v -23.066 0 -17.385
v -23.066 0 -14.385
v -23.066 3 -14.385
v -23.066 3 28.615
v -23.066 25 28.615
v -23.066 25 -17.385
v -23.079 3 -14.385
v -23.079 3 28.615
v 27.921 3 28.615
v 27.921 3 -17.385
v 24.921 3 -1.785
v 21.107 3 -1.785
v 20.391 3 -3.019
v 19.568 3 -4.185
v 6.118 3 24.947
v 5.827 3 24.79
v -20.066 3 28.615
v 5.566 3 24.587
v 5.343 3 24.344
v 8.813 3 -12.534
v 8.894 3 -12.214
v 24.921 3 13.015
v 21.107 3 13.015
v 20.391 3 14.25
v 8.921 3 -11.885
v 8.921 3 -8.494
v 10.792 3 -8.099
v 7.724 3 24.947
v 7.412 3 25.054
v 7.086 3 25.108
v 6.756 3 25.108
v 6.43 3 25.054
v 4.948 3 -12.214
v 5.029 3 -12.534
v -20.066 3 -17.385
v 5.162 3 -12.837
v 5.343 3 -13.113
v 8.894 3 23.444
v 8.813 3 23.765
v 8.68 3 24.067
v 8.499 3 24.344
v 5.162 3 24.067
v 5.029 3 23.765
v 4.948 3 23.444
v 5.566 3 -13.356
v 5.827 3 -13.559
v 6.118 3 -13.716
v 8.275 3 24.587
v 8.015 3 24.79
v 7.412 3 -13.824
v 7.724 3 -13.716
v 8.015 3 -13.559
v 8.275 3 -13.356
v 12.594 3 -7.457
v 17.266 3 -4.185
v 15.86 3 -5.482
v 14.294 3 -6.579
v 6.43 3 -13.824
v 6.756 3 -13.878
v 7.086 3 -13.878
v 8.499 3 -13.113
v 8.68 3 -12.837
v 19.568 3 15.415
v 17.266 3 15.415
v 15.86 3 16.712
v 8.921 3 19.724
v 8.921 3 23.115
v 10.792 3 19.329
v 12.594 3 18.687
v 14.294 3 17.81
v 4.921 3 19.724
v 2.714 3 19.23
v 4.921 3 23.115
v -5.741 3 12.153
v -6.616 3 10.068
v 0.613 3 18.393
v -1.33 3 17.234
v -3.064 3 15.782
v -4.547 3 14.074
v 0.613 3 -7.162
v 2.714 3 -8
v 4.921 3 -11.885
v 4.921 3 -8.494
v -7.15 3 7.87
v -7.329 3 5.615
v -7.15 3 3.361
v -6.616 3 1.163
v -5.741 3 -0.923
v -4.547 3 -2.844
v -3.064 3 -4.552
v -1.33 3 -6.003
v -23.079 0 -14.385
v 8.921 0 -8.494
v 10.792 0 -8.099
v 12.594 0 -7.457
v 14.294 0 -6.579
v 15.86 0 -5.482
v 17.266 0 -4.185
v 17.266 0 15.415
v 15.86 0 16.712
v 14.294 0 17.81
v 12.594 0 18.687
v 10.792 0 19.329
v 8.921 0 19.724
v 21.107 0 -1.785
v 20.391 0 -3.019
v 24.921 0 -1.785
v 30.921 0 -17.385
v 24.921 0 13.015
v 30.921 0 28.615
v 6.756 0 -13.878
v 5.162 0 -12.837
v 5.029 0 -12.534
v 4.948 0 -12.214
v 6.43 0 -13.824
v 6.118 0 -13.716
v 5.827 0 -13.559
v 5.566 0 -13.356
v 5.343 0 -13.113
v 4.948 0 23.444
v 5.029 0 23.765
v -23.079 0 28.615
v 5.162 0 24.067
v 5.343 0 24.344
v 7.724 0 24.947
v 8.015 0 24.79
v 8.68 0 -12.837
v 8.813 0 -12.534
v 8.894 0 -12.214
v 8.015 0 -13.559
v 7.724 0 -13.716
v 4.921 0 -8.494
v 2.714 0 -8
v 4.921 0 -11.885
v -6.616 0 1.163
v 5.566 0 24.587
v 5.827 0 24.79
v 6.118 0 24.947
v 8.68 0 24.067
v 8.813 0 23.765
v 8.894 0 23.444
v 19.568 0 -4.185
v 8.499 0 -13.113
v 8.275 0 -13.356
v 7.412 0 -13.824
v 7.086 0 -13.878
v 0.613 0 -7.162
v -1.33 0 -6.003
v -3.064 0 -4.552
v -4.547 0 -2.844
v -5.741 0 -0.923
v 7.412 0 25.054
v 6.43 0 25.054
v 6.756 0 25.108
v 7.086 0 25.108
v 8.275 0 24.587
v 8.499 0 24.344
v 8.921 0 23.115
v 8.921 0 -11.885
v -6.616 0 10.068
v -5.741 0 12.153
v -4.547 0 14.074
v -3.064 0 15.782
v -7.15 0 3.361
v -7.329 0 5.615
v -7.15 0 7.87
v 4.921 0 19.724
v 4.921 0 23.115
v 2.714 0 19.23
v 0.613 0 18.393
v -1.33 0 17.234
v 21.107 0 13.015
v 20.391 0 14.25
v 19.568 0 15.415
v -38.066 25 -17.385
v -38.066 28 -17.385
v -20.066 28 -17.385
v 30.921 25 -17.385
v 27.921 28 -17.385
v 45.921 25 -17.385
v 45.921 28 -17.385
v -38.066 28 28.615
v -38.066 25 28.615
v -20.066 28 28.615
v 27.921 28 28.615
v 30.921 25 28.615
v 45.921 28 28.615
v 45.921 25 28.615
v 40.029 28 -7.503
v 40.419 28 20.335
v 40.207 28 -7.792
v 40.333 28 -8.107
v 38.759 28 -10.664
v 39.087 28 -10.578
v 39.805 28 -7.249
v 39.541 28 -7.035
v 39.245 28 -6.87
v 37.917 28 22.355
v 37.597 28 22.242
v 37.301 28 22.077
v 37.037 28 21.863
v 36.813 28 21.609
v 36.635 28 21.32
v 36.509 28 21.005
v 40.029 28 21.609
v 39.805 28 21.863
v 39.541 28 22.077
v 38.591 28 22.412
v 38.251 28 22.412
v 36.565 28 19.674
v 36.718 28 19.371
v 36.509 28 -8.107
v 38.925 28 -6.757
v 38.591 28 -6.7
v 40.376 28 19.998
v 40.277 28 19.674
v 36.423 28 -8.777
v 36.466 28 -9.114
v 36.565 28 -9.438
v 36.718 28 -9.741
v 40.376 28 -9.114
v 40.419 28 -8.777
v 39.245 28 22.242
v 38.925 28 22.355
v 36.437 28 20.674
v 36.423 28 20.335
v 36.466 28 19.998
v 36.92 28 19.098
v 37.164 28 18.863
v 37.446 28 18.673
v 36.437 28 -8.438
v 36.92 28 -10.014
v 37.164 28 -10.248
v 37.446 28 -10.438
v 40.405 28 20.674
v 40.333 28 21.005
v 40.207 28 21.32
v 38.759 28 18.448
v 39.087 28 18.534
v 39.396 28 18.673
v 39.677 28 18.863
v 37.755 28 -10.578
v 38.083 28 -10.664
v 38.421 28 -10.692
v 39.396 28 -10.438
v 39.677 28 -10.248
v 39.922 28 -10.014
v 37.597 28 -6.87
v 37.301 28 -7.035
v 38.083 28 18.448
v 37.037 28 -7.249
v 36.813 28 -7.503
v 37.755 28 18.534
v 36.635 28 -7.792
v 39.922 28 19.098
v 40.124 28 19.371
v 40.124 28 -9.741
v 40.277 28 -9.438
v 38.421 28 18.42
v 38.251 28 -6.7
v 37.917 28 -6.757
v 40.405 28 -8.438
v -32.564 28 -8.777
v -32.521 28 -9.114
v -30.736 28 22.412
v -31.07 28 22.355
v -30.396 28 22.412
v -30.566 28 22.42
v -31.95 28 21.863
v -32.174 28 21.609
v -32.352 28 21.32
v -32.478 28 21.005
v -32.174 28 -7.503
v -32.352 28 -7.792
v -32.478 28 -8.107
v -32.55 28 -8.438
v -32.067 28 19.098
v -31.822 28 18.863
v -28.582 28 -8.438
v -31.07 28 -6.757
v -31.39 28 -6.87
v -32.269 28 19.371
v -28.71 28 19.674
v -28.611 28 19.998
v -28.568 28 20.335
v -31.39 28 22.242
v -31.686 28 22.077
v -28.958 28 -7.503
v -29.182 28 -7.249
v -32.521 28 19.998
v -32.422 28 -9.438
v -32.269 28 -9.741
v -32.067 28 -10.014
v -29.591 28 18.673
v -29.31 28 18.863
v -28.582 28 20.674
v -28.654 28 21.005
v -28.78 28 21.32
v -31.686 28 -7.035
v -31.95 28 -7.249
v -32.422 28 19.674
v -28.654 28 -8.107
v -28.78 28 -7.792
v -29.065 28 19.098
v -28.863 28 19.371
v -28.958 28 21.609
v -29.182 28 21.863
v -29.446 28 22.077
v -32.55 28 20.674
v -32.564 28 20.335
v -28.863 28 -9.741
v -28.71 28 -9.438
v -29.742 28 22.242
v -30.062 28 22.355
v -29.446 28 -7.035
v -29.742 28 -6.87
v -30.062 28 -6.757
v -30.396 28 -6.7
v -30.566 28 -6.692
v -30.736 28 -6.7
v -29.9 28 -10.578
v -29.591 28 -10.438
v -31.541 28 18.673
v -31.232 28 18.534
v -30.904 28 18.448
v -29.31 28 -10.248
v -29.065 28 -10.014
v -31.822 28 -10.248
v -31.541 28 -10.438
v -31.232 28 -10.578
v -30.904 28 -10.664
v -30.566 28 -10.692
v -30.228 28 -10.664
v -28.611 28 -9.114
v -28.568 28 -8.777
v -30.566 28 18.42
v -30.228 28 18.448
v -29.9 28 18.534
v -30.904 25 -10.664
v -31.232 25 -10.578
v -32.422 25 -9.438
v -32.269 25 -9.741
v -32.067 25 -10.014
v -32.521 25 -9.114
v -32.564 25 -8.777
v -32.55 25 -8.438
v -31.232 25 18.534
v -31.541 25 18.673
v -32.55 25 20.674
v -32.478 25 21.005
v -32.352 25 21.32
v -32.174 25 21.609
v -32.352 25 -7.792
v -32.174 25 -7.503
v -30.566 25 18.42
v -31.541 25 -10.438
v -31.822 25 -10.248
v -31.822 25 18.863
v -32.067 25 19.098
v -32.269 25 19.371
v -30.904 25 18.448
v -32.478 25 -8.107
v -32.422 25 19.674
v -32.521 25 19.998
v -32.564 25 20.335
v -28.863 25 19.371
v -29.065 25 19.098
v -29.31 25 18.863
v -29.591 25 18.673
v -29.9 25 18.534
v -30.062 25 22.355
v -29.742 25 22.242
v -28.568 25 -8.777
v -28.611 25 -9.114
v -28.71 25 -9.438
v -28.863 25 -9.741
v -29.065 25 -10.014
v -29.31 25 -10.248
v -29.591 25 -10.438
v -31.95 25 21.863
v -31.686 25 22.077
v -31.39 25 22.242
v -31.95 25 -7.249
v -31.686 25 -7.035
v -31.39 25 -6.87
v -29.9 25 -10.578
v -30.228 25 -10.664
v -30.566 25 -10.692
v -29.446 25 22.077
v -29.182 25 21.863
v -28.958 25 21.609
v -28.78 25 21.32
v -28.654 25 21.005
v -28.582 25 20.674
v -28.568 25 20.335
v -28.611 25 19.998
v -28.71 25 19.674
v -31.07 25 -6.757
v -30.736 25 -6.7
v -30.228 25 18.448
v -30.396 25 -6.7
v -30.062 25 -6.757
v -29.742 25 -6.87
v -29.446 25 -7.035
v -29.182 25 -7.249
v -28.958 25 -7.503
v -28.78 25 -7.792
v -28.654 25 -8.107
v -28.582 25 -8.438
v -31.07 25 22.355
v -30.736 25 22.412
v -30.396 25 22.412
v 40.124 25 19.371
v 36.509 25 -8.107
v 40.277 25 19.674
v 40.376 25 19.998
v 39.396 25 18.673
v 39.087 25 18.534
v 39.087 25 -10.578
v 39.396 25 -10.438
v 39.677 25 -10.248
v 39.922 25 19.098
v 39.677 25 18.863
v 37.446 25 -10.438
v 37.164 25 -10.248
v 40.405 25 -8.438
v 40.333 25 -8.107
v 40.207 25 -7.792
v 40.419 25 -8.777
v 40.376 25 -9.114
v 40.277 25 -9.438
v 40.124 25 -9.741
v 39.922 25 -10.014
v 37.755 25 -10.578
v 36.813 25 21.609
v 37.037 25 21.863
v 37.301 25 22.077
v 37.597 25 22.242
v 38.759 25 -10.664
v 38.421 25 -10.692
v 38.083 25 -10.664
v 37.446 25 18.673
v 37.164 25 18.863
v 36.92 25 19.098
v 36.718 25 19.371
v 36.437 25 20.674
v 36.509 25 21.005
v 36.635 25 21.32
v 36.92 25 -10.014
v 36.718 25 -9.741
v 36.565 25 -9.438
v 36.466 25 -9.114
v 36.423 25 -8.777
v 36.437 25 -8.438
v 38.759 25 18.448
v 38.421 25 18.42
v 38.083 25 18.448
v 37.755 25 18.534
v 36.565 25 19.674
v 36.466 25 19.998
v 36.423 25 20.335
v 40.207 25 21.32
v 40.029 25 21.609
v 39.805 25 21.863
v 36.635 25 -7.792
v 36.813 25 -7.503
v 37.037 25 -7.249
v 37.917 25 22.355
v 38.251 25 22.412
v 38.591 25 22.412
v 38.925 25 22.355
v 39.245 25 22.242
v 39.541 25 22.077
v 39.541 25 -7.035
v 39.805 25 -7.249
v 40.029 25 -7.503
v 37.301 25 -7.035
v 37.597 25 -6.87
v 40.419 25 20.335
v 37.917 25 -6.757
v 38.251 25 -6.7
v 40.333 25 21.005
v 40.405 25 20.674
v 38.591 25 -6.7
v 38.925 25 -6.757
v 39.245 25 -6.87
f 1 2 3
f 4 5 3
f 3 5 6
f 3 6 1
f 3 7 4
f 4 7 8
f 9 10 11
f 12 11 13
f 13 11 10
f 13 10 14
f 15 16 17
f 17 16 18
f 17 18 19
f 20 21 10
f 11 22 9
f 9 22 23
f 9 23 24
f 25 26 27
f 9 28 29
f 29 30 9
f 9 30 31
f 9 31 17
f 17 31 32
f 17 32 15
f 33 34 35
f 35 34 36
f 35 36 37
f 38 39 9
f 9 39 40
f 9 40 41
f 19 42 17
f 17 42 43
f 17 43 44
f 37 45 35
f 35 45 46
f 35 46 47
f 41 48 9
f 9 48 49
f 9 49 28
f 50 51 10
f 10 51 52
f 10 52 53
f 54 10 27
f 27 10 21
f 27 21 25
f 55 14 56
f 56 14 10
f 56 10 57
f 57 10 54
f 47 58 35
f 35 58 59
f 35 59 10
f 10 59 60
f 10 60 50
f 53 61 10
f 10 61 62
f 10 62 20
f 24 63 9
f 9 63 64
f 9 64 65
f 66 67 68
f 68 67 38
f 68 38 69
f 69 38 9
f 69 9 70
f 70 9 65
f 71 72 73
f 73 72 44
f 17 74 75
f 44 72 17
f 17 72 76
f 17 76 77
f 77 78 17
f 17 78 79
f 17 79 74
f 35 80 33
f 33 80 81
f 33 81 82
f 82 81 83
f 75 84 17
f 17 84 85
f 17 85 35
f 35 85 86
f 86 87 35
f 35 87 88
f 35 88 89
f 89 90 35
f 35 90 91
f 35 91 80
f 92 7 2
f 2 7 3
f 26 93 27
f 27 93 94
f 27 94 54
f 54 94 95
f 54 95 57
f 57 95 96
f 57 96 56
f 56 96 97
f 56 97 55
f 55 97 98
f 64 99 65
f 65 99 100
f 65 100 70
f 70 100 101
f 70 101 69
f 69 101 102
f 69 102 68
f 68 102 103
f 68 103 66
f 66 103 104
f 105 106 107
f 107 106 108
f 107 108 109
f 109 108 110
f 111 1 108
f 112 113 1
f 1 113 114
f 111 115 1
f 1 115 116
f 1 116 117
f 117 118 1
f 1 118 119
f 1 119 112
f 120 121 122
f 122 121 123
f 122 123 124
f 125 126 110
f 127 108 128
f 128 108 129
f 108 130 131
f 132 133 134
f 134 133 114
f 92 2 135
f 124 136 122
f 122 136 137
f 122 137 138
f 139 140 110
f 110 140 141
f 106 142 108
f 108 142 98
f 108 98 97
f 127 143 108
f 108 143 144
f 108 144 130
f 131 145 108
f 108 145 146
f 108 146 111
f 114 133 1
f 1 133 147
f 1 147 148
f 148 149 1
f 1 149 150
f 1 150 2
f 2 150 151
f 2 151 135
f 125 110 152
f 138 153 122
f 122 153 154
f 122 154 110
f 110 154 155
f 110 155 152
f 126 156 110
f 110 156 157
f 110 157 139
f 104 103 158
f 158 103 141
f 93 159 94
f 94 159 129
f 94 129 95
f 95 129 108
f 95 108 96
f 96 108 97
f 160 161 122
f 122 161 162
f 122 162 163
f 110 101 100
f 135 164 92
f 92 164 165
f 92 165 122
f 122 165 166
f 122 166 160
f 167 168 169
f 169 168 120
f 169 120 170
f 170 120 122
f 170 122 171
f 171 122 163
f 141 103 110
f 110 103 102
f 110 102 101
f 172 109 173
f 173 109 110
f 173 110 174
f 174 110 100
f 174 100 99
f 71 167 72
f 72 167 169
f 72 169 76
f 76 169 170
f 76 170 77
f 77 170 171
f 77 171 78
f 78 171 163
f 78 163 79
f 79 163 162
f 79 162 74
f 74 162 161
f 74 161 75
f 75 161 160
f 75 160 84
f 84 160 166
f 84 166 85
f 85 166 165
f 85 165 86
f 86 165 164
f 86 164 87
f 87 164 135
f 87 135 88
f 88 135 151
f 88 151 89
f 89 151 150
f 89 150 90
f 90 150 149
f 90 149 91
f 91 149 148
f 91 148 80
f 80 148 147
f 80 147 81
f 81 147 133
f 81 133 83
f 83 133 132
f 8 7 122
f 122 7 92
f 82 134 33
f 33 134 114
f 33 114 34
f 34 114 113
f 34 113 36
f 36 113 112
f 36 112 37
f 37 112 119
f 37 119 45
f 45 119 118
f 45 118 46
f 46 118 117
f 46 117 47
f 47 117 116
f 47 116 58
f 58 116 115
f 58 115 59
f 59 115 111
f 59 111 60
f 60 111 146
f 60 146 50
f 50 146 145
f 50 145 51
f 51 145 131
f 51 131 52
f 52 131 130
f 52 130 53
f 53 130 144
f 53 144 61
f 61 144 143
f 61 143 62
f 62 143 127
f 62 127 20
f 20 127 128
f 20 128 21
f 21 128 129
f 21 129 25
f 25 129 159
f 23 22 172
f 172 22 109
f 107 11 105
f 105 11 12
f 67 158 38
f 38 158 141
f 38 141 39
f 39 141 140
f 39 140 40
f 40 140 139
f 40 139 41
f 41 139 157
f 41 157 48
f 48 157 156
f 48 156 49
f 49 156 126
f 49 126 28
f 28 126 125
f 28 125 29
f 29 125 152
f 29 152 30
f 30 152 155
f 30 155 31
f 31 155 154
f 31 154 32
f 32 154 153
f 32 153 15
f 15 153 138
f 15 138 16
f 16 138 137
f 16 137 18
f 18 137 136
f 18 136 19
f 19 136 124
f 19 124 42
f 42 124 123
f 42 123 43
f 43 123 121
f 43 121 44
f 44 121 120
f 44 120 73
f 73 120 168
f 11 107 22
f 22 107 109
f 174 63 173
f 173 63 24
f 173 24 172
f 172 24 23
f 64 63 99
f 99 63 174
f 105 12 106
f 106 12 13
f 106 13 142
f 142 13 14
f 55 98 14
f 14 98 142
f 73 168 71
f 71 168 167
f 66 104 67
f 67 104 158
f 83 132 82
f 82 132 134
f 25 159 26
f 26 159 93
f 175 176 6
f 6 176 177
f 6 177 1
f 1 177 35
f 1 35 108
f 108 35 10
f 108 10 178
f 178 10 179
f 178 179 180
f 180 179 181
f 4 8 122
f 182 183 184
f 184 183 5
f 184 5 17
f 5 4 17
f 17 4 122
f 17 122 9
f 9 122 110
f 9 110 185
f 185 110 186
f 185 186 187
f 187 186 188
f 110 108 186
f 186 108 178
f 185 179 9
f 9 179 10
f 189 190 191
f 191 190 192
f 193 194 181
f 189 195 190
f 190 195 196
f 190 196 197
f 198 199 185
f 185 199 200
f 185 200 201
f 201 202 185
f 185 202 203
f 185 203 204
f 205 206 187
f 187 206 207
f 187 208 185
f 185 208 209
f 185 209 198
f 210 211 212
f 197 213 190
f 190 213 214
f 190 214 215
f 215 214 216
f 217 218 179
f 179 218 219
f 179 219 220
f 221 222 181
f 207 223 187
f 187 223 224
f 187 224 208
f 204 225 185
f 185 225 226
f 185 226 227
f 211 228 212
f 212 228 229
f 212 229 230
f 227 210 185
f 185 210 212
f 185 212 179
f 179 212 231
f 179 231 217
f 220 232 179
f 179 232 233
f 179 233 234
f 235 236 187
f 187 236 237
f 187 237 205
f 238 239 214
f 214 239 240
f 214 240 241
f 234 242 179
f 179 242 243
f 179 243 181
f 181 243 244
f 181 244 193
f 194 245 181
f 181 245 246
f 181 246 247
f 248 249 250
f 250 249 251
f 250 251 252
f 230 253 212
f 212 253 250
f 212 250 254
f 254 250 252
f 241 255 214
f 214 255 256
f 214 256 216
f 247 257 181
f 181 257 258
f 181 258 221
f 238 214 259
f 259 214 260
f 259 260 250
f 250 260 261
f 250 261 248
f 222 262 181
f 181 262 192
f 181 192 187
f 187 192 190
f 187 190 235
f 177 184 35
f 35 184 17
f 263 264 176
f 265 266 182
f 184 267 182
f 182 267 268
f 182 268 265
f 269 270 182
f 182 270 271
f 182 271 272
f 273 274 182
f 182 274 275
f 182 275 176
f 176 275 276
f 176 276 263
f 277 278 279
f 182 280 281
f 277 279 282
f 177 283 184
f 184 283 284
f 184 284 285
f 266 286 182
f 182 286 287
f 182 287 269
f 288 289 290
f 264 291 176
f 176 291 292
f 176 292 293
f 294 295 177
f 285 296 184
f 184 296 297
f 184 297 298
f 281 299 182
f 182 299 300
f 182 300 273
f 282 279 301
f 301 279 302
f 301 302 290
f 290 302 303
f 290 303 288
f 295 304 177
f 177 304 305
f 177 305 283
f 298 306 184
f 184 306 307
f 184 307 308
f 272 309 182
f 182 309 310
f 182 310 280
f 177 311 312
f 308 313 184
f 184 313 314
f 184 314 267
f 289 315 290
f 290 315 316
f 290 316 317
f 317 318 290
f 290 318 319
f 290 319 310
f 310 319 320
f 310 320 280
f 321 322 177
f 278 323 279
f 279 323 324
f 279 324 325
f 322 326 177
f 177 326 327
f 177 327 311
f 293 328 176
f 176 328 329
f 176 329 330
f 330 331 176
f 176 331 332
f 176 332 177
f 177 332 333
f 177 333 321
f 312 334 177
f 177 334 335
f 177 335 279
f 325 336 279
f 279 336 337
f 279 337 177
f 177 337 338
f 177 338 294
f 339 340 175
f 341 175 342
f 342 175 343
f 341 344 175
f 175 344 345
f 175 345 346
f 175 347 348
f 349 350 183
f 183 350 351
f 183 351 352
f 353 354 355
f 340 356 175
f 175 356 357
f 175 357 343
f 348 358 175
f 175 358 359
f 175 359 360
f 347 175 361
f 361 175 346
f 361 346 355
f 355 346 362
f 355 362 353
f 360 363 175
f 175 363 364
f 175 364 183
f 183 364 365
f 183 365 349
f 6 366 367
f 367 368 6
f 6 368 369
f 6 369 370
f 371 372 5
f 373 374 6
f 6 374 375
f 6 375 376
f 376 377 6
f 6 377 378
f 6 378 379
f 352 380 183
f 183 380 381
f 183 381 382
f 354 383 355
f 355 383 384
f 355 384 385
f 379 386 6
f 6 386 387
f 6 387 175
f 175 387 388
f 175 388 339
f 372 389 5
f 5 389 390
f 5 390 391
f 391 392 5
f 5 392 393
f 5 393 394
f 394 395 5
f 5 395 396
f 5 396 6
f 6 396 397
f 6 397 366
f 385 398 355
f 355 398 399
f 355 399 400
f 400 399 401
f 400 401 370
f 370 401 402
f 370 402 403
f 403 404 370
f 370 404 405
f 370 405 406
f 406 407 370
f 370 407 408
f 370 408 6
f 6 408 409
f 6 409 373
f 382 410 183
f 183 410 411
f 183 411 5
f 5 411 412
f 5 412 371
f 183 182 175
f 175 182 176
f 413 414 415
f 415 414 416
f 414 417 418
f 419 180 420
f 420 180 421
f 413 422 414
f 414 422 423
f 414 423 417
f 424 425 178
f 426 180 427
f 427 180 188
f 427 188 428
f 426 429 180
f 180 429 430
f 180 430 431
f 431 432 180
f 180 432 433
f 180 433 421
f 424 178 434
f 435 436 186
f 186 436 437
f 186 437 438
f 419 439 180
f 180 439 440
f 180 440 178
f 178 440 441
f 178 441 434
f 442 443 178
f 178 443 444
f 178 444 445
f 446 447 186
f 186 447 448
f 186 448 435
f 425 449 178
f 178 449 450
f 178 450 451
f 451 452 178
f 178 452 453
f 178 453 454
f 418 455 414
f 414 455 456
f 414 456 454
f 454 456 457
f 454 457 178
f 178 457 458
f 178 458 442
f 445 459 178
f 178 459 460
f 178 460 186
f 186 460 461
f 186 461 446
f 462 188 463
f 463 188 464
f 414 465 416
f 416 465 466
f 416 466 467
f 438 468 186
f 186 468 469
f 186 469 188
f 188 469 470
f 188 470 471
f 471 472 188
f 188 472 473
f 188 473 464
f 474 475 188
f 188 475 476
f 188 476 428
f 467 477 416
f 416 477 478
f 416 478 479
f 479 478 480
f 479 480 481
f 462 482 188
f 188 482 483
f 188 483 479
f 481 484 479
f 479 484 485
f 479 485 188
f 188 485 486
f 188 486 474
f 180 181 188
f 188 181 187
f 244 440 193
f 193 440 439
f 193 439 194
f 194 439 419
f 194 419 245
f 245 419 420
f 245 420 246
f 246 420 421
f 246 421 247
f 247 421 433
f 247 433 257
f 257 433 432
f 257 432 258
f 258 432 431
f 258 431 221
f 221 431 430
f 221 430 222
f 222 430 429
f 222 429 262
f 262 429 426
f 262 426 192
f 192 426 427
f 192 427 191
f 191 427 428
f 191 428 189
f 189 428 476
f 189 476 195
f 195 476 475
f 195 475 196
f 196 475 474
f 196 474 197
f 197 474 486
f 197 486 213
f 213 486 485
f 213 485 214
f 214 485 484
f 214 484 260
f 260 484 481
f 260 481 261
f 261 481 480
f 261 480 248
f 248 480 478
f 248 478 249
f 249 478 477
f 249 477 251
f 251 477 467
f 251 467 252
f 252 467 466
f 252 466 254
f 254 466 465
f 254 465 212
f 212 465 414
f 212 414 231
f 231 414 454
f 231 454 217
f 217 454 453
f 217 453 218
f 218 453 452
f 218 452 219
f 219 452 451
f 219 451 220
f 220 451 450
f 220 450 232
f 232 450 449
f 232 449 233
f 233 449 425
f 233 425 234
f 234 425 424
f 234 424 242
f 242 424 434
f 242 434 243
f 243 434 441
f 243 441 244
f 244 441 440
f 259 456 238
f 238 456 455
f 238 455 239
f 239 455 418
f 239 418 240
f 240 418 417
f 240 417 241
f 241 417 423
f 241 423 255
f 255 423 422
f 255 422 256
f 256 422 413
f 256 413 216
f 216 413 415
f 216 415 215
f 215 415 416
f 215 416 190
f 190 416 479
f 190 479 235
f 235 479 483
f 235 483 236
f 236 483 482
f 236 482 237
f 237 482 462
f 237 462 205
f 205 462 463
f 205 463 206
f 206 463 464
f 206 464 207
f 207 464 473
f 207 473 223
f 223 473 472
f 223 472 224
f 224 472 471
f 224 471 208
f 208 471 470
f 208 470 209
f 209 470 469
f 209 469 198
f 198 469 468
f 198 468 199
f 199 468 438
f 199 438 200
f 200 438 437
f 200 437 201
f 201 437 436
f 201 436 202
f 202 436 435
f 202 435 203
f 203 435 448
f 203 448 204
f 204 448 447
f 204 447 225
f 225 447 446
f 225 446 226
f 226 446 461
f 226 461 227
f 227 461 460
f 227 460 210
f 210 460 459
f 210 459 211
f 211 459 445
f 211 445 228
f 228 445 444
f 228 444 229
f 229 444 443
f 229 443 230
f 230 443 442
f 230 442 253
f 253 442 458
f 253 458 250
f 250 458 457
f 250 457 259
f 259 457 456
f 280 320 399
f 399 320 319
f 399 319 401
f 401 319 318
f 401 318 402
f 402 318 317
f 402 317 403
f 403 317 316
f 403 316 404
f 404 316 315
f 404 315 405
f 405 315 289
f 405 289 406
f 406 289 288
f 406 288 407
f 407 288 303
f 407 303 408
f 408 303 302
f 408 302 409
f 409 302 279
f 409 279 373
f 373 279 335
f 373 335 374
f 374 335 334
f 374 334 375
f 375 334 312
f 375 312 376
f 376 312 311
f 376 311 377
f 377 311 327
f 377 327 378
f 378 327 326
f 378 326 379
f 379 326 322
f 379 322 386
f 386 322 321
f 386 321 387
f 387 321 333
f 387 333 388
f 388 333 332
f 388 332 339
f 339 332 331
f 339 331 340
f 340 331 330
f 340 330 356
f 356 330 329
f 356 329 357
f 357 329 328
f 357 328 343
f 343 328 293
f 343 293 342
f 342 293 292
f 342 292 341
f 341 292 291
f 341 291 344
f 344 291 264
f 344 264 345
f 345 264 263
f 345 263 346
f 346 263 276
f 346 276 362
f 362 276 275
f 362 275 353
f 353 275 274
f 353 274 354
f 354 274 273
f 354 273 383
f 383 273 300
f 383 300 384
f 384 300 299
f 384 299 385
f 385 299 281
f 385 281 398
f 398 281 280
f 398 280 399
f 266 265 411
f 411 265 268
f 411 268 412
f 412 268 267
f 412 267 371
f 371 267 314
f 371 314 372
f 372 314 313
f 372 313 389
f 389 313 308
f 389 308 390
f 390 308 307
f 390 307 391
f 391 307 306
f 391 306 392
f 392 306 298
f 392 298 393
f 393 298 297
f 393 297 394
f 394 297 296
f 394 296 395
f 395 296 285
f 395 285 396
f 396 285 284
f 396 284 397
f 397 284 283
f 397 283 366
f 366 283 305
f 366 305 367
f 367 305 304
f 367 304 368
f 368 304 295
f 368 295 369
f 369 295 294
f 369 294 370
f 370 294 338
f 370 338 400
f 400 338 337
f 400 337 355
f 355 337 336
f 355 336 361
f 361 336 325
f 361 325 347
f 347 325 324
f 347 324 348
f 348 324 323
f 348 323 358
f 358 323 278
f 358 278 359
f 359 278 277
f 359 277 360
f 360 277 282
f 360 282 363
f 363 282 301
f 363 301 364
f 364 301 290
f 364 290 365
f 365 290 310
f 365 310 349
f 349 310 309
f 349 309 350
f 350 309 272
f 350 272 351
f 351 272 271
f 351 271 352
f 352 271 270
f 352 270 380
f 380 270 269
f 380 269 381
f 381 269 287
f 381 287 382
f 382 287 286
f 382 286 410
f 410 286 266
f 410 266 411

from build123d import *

# Parameters (mm, degrees)
SKETCH1_W           = 50
SKETCH1_H           = 40
BOSS_EXTRUDE1_DEPTH = 3
SKETCH6_R           = 2
CUT_EXTRUDE9_DEPTH  = 5
SKETCH16_W          = 14.8
SKETCH16_H          = 3
CUT_EXTRUDE10_DEPTH = 0.5
SKETCH21_R          = 14.25
CUT_EXTRUDE15_DEPTH = 4
CUT_EXTRUDE16_START = -4
CUT_EXTRUDE16_DEPTH = 4
SKETCH33_W          = 4
SKETCH33_H          = 35
CUT_EXTRUDE23_DEPTH = 5
SKETCH34_W          = 49.986920535
SKETCH34_H          = 3
BOSS_EXTRUDE2_DEPTH = 3
SKETCH35_W          = 50
SKETCH35_H          = 3
BOSS_EXTRUDE3_DEPTH = 3
SKETCH36_W          = 46
SKETCH36_H          = 3
BOSS_EXTRUDE4_DEPTH = 4
SKETCH38_W          = 3
SKETCH38_H          = 46
BOSS_EXTRUDE5_DEPTH = 25
SKETCH39_W          = 45.535565308
SKETCH39_H          = 3
BOSS_EXTRUDE6_DEPTH = 15
SKETCH40_W          = 46
SKETCH40_H          = 3
BOSS_EXTRUDE7_DEPTH = 15
SKETCH41_W          = 0.464434692
SKETCH41_H          = 3
BOSS_EXTRUDE8_DEPTH = 15
SKETCH42_R          = 2
CUT_EXTRUDE24_DEPTH = 15
SKETCH43_R          = 2
CUT_EXTRUDE25_DEPTH = 15


with BuildPart() as part:
    # Sketch1 → Boss-Extrude1 (new body)
    with BuildSketch(Plane(origin=(0, 0, 0), x_dir=(1, 0, 0), z_dir=(0, 1, 0))):
        with Locations((1.920937393, -5.615172506)):
            Rectangle(SKETCH1_W, SKETCH1_H)
    extrude(amount=BOSS_EXTRUDE1_DEPTH)

    # Sketch6 → Cut-Extrude9 (cut)
    with BuildSketch(Plane.XZ):
        with Locations(Location((6.920937393, 23.115172506, 0), (0, 0, 270))):
            Circle(SKETCH6_R)
        with Locations(Location((6.920937393, -11.884827494, 0), (0, 0, 270))):
            Circle(SKETCH6_R)
        with BuildLine():
            Line((24.420937393, 13.015172506), (18.923020545, 13.015172506))
            ThreePointArc((18.923020545, 13.015172506), (-7.179062607, 5.615172506), (18.923020545, -1.784827494))
            Line((18.923020545, -1.784827494), (24.420937393, -1.784827494))
            Line((24.420937393, -1.784827494), (24.420937393, 5.615172506))
            Line((24.420937393, 5.615172506), (24.420937393, 13.015172506))
        make_face()
    extrude(amount=-CUT_EXTRUDE9_DEPTH, mode=Mode.SUBTRACT)

    # Sketch16 → Cut-Extrude10 (cut)
    with BuildSketch(Plane.ZY.offset(-24.420937393)):
        with Locations((5.615172506, 1.5)):
            Rectangle(SKETCH16_W, SKETCH16_H)
    extrude(amount=-CUT_EXTRUDE10_DEPTH, mode=Mode.SUBTRACT)

    # Sketch21 → Cut-Extrude15 (cut)
    with BuildSketch(Plane(origin=(0, 0, 0), x_dir=(-1, 0, 0), z_dir=(0, -1, 0))):
        with Locations((-6.920937393, -5.615172506)):
            Circle(SKETCH21_R)
    extrude(amount=-CUT_EXTRUDE15_DEPTH, mode=Mode.SUBTRACT)

    # Sketch22 → Cut-Extrude16 (cut)
    with BuildSketch(Plane(origin=(0, 3, 0), x_dir=(1, 0, 0), z_dir=(0, 1, 0)).offset(CUT_EXTRUDE16_START)):
        with BuildLine():
            ThreePointArc((21.106680727, 1.784827494), (20.39103932, 3.019158274), (19.568281538, 4.184827494))
            Line((19.568281538, 4.184827494), (17.266105347, 4.184827494))
            ThreePointArc((17.266105347, 4.184827494), (18.246250908, 3.03351374), (19.09888878, 1.784827494))
            Line((19.09888878, 1.784827494), (21.106680727, 1.784827494))
        make_face()
        with BuildLine():
            Line((17.266105347, -15.415172506), (19.568281538, -15.415172506))
            ThreePointArc((19.568281538, -15.415172506), (20.39103932, -14.249503286), (21.106680727, -13.015172506))
            Line((21.106680727, -13.015172506), (19.09888878, -13.015172506))
            ThreePointArc((19.09888878, -13.015172506), (18.246250908, -14.263858752), (17.266105347, -15.415172506))
        make_face()
    extrude(amount=CUT_EXTRUDE16_DEPTH, mode=Mode.SUBTRACT)

    # Sketch33 → Cut-Extrude23 (cut)
    with BuildSketch(Plane(origin=(0, 3, 0), x_dir=(1, 0, 0), z_dir=(0, 1, 0))):
        with Locations((6.920937393, -5.615172506)):
            Rectangle(SKETCH33_W, SKETCH33_H)
    extrude(amount=-CUT_EXTRUDE23_DEPTH, mode=Mode.SUBTRACT)

    # Sketch34 → Boss-Extrude2 (add)
    with BuildSketch(Plane(origin=(0, 0, -14.384827494), x_dir=(-1, 0, 0), z_dir=(0, 0, -1))):
        with Locations((-1.927477126, 1.5)):
            Rectangle(SKETCH34_W, SKETCH34_H)
    extrude(amount=BOSS_EXTRUDE2_DEPTH)

    # Sketch35 → Boss-Extrude3 (add)
    with BuildSketch(Plane.XY.offset(25.615172506)):
        with Locations((1.920937393, 1.5)):
            Rectangle(SKETCH35_W, SKETCH35_H)
    extrude(amount=BOSS_EXTRUDE3_DEPTH)

    # Sketch36 → Boss-Extrude4 (add)
    with BuildSketch(Plane(origin=(26.920937393, 0, 0), x_dir=(0, 0, -1), z_dir=(1, 0, 0))):
        with Locations((-5.615172506, 1.5)):
            Rectangle(SKETCH36_W, SKETCH36_H)
    extrude(amount=BOSS_EXTRUDE4_DEPTH)

    # Sketch38 → Boss-Extrude5 (add)
    with BuildSketch(Plane(origin=(0, 3, 0), x_dir=(1, 0, 0), z_dir=(0, 1, 0))):
        with Locations((29.420937393, -5.615172506)):
            Rectangle(SKETCH38_W, SKETCH38_H)
        with Locations((-21.565983142, -5.615172506)):
            Rectangle(SKETCH38_W, SKETCH38_H)
    extrude(amount=BOSS_EXTRUDE5_DEPTH)

    # Sketch39 → Boss-Extrude6 (add)
    with BuildSketch(Plane.ZY.offset(23.065983142)):
        with Locations((5.38295516, 26.5)):
            Rectangle(SKETCH39_W, SKETCH39_H)
    extrude(amount=BOSS_EXTRUDE6_DEPTH)

    # Sketch40 → Boss-Extrude7 (add)
    with BuildSketch(Plane(origin=(30.920937393, 0, 0), x_dir=(0, 0, -1), z_dir=(1, 0, 0))):
        with Locations((-5.615172506, 26.5)):
            Rectangle(SKETCH40_W, SKETCH40_H)
    extrude(amount=BOSS_EXTRUDE7_DEPTH)

    # Sketch41 → Boss-Extrude8 (add)
    with BuildSketch(Plane.ZY.offset(23.065983142)):
        with Locations((28.38295516, 26.5)):
            Rectangle(SKETCH41_W, SKETCH41_H)
    extrude(amount=BOSS_EXTRUDE8_DEPTH)

    # Sketch42 → Cut-Extrude24 (cut)
    with BuildSketch(Plane.XZ.offset(-25)):
        with Locations(Location((38.420937393, 20.419520332, 0), (0, 0, 270))):
            Circle(SKETCH42_R)
        with Locations(Location((38.420937393, -8.692413747, 0), (0, 0, 270))):
            Circle(SKETCH42_R)
    extrude(amount=-CUT_EXTRUDE24_DEPTH, mode=Mode.SUBTRACT)

    # Sketch43 → Cut-Extrude25 (cut)
    with BuildSketch(Plane.XZ.offset(-25)):
        with Locations(Location((-30.565983142, 20.419520332, 0), (0, 0, 270))):
            Circle(SKETCH43_R)
        with Locations(Location((-30.565983142, -8.692413747, 0), (0, 0, 270))):
            Circle(SKETCH43_R)
    extrude(amount=-CUT_EXTRUDE25_DEPTH, mode=Mode.SUBTRACT)


solid = part.part
